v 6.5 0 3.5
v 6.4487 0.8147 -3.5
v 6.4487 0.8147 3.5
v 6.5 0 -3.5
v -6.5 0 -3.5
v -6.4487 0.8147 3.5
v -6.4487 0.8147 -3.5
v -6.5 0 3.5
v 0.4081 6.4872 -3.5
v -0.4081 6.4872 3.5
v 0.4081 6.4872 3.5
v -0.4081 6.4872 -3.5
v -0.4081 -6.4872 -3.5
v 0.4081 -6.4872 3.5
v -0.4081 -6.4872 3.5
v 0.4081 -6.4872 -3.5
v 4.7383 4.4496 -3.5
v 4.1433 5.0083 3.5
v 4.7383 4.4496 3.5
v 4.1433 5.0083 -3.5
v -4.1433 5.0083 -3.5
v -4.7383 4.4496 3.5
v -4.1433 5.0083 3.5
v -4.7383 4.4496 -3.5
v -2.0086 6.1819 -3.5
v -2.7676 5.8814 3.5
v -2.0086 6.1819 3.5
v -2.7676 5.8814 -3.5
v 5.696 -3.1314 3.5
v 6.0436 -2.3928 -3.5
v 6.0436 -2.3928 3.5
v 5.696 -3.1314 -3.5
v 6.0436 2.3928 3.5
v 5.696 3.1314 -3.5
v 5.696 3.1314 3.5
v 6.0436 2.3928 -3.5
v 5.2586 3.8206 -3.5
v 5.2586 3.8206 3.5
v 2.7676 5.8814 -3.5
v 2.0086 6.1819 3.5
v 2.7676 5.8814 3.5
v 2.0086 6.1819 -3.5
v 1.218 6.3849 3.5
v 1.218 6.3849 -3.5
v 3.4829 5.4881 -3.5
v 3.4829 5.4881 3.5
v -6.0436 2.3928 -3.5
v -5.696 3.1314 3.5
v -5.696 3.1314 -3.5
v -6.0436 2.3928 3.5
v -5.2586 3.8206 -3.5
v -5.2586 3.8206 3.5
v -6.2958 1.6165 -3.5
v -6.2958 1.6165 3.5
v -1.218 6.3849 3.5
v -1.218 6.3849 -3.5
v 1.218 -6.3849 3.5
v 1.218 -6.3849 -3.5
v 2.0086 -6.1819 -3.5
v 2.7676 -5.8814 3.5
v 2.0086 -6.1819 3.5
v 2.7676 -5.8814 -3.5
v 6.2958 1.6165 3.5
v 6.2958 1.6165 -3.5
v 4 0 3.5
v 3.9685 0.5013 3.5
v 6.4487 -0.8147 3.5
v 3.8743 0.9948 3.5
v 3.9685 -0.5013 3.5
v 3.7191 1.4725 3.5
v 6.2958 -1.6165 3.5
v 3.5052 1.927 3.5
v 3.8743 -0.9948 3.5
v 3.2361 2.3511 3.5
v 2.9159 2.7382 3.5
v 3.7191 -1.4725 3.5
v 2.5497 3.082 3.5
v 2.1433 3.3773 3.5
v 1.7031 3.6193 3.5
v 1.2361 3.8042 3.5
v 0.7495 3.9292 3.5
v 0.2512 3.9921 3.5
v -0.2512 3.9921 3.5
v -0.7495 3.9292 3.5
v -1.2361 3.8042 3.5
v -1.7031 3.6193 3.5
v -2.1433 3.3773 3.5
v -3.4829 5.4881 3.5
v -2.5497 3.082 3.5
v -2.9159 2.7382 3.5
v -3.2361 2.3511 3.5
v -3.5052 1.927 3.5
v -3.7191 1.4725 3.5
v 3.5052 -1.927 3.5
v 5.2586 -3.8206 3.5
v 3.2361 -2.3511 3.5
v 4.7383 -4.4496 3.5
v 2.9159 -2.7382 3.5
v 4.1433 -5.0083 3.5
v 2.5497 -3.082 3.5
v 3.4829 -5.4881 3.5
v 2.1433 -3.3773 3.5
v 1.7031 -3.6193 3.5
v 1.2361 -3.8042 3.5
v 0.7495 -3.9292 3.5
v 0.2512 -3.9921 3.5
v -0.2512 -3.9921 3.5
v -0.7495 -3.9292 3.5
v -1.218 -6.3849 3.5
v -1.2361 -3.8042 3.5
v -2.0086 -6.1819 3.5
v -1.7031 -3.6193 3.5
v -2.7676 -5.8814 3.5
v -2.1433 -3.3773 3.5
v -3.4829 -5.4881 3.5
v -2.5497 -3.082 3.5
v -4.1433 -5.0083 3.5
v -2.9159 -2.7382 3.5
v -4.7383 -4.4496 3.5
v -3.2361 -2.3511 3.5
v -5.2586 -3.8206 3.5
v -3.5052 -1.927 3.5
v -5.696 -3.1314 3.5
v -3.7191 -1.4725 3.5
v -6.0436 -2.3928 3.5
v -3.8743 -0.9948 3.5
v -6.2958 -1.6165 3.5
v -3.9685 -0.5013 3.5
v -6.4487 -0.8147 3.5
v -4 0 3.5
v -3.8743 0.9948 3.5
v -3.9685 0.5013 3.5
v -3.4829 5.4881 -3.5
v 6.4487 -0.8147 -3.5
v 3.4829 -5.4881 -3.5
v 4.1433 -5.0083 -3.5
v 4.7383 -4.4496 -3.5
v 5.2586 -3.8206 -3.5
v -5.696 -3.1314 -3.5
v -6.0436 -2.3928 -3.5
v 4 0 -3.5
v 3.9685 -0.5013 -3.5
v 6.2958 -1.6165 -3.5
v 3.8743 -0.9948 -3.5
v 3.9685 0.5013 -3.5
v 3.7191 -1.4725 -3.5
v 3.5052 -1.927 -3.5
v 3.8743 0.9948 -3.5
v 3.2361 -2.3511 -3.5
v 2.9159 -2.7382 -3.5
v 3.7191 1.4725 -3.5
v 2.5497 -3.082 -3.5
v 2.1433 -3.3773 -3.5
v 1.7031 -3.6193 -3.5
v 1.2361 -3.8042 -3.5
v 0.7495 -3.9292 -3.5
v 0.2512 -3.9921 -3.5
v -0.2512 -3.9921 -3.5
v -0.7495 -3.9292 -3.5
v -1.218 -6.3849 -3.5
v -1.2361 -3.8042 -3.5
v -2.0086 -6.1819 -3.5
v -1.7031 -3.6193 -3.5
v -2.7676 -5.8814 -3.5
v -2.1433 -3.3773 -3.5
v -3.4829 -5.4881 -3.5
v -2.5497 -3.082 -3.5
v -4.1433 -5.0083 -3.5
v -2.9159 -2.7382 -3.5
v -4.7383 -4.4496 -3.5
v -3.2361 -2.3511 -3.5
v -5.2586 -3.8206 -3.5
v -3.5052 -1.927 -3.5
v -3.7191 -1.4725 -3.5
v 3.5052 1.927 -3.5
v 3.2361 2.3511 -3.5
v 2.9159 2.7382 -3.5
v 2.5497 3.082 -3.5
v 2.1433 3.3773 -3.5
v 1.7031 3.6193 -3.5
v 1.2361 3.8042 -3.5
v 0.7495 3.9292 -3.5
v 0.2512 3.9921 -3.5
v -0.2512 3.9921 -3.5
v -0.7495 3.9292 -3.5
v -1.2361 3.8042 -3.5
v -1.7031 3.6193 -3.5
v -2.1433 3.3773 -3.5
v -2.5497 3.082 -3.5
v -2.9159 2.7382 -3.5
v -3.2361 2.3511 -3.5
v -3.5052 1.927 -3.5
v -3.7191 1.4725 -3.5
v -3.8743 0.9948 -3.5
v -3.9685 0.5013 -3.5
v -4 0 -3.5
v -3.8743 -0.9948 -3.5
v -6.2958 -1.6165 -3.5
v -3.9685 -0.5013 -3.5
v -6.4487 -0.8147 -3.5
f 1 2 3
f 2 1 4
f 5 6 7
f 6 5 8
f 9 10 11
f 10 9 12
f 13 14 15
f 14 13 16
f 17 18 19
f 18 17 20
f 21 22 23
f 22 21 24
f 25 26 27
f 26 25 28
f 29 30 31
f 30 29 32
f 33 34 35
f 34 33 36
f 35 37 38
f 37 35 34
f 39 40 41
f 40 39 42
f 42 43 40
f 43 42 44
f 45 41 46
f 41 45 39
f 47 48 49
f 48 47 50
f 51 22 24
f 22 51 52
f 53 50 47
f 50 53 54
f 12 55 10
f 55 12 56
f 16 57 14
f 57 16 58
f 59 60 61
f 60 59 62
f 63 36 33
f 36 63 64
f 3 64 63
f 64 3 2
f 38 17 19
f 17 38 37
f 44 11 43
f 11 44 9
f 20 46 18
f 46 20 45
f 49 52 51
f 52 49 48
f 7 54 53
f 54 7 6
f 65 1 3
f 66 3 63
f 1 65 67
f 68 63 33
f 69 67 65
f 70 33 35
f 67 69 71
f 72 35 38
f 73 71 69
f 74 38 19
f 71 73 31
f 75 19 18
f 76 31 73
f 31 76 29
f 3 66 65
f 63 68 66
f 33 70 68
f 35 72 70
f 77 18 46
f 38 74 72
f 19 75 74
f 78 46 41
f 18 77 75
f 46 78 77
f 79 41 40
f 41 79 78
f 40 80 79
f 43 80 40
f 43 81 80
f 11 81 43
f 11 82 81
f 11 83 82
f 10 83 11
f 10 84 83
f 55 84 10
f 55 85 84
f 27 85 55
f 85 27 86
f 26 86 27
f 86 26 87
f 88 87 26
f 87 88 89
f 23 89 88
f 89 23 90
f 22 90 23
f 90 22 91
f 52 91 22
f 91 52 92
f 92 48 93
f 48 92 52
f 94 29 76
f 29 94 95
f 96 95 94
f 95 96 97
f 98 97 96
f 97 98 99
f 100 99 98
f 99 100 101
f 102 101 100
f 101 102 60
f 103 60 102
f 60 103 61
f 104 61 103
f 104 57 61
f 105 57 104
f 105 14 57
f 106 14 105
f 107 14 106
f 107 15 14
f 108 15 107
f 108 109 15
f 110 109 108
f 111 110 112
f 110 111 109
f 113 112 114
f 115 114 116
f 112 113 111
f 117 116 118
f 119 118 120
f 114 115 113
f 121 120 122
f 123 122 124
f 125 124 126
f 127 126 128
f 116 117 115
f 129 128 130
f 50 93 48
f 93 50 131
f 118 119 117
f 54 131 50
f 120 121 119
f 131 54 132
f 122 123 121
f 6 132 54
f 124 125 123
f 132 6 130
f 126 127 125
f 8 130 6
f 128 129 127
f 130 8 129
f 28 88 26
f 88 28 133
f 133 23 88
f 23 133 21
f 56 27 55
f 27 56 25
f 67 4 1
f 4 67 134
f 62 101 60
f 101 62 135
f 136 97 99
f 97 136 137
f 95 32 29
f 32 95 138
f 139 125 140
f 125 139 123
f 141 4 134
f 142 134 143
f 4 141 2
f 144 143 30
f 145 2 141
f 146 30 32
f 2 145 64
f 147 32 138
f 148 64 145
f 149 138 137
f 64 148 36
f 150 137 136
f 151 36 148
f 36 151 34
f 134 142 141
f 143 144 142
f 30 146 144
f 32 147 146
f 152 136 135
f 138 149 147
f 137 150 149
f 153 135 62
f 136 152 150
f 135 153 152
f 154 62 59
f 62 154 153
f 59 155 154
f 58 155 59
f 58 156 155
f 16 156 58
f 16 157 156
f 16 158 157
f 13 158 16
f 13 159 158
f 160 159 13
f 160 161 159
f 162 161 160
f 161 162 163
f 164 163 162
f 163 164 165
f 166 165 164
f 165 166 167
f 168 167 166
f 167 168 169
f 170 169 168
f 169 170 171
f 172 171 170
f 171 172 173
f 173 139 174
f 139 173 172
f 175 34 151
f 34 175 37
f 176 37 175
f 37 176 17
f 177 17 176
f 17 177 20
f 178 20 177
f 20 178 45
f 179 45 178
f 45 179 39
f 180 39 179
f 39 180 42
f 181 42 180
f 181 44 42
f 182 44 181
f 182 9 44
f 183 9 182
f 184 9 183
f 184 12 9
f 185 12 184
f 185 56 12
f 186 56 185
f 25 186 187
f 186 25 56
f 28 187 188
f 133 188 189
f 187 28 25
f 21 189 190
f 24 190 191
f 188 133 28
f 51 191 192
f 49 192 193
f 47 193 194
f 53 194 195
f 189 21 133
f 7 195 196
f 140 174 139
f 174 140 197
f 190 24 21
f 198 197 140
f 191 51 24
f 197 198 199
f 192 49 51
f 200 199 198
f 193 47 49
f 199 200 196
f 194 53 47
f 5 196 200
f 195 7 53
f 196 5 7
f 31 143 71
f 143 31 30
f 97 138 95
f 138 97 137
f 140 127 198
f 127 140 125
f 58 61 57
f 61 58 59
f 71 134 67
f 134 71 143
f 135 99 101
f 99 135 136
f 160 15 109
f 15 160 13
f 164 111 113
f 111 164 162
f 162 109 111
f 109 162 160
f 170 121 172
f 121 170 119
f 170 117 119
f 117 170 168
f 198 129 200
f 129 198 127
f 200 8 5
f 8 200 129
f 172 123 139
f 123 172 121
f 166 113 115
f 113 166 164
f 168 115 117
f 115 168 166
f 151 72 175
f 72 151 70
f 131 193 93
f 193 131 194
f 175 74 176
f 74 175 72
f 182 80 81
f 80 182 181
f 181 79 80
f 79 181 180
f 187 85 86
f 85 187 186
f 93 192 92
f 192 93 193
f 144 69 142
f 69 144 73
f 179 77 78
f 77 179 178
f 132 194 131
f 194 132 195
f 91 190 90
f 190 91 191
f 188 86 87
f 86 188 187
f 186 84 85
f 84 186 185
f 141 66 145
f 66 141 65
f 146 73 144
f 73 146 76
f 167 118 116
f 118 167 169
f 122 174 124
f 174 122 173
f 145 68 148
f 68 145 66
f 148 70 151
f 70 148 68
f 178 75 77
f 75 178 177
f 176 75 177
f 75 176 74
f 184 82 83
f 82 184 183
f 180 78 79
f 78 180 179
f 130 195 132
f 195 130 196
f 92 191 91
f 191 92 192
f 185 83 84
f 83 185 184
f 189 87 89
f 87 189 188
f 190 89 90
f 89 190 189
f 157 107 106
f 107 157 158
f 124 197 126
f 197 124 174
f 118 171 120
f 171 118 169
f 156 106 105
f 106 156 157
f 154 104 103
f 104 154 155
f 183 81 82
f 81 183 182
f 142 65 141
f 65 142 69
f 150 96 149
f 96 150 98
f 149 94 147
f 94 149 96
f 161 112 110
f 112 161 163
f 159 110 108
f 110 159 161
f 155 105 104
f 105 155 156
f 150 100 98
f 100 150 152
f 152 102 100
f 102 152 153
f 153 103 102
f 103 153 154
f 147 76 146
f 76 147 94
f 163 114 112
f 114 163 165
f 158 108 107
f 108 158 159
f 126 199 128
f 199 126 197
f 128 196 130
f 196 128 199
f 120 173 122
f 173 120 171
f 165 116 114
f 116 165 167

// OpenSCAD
$fn = 50;


difference() {
	union() {
		translate(v = [0, 0, -3.5000000000]) {
			cylinder(h = 7, r = 6.5000000000);
		}
	}
	union() {
		translate(v = [0, 0, -100.0000000000]) {
			cylinder(h = 200, r = 4);
		}
	}
}
